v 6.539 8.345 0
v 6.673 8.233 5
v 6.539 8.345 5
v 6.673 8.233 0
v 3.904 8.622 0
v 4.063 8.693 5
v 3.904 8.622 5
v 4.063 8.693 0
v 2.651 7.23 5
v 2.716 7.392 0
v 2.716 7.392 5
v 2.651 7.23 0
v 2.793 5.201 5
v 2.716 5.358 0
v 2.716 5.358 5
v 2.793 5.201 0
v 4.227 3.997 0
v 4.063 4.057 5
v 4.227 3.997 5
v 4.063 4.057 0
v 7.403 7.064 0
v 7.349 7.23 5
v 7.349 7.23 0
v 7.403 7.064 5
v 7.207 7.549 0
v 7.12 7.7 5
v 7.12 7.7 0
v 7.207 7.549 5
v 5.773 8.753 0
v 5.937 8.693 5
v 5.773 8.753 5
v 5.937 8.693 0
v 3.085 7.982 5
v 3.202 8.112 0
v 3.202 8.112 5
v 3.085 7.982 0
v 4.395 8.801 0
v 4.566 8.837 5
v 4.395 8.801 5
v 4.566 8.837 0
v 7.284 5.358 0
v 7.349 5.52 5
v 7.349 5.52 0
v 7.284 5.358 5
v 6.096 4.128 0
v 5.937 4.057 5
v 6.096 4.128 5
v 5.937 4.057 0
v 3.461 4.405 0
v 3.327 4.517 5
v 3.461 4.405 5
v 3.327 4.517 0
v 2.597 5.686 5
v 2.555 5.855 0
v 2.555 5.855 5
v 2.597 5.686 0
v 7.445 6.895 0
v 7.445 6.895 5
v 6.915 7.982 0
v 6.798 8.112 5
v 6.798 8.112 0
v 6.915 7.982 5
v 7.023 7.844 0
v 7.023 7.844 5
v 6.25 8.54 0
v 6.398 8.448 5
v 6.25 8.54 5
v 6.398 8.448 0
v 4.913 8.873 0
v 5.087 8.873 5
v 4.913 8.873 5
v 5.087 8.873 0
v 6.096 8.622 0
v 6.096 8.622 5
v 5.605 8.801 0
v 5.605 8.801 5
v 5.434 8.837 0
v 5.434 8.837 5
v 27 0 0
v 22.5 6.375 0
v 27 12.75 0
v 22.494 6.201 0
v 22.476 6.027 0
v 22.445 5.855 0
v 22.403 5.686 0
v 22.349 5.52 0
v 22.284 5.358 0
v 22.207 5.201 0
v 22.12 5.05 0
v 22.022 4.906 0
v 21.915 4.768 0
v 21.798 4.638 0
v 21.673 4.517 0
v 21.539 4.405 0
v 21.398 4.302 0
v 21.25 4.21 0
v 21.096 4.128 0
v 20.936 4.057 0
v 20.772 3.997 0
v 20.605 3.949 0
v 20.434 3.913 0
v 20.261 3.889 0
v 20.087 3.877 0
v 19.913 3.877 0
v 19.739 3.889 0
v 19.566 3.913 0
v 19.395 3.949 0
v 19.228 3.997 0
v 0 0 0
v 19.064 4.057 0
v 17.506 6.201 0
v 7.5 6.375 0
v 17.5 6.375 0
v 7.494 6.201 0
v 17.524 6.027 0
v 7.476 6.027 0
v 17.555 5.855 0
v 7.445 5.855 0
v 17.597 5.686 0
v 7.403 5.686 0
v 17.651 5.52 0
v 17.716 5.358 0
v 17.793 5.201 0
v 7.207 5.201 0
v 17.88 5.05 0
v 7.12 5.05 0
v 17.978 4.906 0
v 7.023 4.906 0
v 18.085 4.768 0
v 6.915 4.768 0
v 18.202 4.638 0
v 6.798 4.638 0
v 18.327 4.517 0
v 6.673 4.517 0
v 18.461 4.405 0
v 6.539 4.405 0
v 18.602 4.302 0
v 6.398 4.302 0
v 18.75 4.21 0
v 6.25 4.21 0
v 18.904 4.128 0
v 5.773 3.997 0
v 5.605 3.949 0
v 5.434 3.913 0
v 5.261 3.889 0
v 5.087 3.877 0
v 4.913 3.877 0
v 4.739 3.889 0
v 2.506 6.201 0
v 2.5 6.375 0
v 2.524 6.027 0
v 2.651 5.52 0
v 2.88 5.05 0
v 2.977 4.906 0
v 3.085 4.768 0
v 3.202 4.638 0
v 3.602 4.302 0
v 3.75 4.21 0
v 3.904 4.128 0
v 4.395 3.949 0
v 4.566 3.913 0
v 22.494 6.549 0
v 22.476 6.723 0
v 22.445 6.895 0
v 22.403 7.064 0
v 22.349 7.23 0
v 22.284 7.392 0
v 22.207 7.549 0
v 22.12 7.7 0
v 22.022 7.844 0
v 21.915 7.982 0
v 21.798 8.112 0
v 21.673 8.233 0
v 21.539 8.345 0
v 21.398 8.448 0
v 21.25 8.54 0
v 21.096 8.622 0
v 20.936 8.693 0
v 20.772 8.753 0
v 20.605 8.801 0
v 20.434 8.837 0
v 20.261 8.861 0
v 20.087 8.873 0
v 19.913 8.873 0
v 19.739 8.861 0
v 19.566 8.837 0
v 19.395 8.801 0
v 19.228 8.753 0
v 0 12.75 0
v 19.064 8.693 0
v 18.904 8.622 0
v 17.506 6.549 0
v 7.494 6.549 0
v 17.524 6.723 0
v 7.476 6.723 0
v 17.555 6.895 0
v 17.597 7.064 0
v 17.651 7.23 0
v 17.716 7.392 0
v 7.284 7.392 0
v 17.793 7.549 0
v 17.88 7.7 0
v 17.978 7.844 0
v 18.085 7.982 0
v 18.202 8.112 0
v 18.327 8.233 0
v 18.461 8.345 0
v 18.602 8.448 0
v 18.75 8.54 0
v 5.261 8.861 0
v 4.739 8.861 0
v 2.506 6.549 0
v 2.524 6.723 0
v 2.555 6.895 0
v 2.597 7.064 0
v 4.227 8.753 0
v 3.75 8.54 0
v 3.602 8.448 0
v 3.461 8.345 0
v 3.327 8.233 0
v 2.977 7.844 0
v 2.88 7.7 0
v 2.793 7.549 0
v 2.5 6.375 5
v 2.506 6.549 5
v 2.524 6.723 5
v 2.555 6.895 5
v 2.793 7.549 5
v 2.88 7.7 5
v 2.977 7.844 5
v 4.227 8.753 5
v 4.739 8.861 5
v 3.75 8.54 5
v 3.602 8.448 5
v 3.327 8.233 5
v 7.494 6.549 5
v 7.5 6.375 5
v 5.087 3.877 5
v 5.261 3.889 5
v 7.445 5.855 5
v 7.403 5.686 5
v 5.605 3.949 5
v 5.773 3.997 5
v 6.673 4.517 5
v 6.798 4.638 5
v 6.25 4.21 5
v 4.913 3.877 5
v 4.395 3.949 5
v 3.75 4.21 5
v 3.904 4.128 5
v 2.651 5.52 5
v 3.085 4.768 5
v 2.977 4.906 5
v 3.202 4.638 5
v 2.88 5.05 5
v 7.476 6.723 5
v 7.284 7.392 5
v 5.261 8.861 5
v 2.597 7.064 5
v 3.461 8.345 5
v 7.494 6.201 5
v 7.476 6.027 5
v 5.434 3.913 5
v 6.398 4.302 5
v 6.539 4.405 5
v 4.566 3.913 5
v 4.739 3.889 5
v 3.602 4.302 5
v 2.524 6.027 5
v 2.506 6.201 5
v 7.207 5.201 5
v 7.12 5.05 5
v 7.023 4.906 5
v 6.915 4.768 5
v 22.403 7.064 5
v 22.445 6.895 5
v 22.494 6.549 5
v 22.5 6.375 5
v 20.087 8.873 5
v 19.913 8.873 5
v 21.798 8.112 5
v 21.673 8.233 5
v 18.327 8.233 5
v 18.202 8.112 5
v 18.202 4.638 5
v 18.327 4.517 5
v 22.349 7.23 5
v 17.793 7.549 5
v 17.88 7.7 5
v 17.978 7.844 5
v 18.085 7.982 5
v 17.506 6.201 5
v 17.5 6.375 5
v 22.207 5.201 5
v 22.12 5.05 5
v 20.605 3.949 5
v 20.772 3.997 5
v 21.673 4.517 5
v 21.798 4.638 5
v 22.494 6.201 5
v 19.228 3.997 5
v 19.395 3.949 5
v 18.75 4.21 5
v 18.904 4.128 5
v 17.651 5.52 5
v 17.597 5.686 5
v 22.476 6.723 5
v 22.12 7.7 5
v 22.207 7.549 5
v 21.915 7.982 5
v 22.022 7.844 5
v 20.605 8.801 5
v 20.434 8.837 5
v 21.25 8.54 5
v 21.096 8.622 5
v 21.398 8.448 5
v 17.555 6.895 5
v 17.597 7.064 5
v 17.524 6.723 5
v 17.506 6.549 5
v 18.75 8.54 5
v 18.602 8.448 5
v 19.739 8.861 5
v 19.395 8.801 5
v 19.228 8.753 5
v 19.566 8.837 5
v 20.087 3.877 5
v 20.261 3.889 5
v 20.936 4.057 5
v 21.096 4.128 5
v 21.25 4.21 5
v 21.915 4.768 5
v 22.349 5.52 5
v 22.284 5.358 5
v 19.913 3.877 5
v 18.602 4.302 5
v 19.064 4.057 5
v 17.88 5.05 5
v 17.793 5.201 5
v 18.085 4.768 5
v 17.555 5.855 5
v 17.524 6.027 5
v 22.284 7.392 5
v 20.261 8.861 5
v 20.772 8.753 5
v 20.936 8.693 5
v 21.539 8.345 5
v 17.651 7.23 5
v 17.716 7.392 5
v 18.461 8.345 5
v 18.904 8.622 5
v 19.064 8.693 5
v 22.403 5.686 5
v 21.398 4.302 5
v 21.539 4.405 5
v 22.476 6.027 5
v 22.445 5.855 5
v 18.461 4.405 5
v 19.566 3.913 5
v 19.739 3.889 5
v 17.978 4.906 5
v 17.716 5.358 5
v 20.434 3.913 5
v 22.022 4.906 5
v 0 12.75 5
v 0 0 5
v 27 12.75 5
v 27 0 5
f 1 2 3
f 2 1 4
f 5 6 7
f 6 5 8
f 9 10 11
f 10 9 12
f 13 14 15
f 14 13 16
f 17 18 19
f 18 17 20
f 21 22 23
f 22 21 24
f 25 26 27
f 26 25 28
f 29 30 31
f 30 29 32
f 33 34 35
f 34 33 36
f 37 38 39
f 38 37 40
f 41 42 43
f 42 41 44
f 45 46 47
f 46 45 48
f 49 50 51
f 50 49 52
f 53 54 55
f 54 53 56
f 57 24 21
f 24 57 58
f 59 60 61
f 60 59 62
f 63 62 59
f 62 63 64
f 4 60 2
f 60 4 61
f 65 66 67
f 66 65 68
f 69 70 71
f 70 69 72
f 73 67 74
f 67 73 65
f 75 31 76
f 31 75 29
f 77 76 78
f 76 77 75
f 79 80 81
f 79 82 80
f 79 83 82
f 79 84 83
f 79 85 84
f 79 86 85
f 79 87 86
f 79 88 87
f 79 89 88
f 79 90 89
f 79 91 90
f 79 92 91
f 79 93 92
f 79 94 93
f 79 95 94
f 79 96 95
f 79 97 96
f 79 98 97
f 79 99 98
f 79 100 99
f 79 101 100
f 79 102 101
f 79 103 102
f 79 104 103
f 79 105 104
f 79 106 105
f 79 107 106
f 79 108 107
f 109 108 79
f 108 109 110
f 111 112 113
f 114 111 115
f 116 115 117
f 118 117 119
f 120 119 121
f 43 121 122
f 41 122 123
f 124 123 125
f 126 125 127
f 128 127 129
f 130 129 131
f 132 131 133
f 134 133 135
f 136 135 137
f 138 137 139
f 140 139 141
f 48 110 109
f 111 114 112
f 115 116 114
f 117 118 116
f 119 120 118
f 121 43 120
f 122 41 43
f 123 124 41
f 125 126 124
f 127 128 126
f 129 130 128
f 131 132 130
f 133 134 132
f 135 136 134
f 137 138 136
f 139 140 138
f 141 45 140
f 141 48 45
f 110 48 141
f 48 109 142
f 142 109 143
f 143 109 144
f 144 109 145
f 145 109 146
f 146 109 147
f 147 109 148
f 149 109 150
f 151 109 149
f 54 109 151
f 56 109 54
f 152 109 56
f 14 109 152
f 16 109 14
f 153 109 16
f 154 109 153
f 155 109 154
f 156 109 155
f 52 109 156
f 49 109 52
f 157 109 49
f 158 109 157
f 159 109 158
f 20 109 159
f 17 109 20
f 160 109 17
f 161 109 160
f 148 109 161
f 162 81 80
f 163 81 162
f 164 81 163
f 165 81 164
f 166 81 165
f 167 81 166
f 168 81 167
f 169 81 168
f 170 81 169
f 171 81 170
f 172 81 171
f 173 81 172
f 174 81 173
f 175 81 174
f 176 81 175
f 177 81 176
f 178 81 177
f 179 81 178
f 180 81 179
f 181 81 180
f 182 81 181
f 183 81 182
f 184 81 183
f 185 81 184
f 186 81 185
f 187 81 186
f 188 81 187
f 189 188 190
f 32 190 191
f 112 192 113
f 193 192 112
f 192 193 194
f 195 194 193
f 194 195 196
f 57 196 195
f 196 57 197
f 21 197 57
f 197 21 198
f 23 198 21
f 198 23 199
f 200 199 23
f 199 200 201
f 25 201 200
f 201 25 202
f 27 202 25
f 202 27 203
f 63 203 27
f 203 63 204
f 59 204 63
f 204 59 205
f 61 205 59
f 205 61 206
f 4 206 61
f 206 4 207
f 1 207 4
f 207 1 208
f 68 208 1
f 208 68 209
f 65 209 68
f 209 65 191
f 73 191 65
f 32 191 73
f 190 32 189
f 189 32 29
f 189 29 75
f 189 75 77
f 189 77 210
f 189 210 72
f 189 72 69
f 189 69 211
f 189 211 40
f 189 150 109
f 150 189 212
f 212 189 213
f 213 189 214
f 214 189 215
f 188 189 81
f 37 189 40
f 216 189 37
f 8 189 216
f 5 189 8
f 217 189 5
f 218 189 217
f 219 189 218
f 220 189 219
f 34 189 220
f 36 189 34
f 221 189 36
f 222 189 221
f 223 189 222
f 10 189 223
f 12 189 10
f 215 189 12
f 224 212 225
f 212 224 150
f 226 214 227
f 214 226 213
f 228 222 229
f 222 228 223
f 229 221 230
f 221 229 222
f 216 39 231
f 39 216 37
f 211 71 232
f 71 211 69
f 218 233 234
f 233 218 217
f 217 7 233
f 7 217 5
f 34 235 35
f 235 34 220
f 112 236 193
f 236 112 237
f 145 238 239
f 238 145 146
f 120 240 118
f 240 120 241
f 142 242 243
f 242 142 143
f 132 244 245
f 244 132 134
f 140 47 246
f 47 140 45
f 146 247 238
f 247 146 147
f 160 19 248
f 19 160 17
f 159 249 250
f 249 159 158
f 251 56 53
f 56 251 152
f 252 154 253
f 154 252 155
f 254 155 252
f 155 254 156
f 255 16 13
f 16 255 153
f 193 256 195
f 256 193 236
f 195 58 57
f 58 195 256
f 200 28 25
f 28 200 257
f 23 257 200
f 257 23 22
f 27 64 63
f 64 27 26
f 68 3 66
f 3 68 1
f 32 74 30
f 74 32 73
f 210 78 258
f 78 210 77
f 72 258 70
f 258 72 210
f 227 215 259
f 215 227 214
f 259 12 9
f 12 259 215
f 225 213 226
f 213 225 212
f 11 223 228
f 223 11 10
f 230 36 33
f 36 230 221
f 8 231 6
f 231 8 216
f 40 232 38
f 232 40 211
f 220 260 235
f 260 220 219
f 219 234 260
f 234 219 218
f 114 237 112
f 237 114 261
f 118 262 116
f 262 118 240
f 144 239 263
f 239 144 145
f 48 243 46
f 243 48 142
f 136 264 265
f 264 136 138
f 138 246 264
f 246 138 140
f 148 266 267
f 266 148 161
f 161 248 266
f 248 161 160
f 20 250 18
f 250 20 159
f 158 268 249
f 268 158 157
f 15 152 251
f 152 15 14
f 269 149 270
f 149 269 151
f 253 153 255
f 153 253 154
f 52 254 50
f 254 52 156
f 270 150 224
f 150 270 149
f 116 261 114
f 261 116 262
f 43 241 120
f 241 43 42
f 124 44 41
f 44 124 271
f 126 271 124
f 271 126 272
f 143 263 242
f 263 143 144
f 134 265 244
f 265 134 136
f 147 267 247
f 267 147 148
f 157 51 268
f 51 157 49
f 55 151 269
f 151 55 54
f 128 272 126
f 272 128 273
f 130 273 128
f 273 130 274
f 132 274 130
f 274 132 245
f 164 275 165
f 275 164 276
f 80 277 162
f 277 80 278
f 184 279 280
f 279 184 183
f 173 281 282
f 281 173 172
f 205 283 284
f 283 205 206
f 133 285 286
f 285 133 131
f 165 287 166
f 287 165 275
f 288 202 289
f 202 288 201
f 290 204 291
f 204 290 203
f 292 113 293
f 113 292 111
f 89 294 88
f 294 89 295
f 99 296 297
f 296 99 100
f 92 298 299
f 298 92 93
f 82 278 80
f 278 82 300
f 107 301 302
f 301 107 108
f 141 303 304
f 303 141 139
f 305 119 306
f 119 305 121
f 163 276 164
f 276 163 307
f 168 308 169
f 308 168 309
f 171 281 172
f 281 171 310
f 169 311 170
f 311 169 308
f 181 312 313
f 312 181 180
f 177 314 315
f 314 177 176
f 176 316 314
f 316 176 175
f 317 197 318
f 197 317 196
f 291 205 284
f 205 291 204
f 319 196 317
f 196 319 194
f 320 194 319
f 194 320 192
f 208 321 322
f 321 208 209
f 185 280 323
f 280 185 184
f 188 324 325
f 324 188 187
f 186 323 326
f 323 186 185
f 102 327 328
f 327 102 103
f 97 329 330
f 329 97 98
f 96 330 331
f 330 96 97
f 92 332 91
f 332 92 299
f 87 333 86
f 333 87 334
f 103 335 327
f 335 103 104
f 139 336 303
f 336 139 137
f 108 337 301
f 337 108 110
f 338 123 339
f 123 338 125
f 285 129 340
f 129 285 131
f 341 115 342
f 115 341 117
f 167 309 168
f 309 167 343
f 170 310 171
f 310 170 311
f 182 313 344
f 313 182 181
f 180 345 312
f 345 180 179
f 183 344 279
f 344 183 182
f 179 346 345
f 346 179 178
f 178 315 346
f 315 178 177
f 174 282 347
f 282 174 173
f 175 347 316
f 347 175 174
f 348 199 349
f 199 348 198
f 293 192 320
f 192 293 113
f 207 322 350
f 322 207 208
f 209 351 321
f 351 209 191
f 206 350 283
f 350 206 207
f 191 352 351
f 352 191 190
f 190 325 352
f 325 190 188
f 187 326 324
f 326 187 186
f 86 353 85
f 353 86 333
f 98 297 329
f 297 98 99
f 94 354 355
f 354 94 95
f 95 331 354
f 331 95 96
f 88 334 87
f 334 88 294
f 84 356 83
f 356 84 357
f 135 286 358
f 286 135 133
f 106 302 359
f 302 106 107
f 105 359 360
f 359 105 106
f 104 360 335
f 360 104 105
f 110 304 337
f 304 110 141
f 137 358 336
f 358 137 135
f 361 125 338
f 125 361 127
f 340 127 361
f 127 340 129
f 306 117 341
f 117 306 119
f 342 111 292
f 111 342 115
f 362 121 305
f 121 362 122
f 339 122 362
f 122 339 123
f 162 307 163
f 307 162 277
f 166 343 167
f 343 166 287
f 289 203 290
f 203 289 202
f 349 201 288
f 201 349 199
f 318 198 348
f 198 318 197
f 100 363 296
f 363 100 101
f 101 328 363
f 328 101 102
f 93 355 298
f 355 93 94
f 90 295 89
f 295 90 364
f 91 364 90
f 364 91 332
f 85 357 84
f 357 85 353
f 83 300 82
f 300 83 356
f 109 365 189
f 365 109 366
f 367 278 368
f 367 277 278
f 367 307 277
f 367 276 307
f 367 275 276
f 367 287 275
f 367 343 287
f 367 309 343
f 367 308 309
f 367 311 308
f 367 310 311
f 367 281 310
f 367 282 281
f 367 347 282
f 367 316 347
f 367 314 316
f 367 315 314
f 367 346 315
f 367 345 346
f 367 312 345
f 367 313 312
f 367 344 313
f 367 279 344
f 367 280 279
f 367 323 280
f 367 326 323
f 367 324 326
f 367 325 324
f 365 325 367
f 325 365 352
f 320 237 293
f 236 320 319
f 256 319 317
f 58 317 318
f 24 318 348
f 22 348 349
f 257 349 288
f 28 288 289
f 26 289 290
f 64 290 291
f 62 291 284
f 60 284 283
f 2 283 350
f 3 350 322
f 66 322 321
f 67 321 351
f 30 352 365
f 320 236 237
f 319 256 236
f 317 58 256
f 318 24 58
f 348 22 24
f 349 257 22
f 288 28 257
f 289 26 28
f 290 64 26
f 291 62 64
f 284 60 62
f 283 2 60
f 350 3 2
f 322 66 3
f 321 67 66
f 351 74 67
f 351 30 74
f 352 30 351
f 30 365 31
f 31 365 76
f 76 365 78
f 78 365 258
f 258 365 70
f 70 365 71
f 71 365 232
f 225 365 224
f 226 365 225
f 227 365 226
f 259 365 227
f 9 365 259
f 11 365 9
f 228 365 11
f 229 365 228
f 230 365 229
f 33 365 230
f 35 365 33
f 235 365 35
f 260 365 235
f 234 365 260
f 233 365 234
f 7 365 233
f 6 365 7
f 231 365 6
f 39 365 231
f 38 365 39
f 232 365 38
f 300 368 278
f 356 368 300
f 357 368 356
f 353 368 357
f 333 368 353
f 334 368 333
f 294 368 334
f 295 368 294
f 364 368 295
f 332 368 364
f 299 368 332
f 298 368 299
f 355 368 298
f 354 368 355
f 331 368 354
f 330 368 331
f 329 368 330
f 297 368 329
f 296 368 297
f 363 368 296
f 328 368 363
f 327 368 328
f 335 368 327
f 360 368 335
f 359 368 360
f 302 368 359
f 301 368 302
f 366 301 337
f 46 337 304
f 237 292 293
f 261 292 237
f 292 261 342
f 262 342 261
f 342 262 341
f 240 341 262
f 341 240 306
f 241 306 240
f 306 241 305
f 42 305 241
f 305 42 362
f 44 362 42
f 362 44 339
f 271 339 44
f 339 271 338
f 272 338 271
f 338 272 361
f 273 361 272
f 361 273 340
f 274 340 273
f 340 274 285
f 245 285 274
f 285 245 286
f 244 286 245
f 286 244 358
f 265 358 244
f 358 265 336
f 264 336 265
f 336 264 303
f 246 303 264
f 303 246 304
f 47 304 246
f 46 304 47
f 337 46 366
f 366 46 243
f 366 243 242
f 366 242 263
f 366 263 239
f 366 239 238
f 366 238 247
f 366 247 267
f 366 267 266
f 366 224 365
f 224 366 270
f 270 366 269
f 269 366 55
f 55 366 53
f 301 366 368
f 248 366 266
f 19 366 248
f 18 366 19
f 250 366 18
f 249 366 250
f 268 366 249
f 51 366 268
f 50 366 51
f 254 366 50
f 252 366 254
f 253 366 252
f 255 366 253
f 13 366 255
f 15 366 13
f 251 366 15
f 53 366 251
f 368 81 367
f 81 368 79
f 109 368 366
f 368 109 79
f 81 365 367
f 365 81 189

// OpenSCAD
$fn=90;
difference() {
    union() {
        cube([27, 12.75, 5]);
    }
    union() {
        
        //  bolt holes
        translate([5.0, (12.75/2), 0]) {
            cylinder(d=5, h=20);
        }

        translate([20.0, (12.75/2),0]) {
            cylinder(d=5, h=20);
        }
        
    }
}
